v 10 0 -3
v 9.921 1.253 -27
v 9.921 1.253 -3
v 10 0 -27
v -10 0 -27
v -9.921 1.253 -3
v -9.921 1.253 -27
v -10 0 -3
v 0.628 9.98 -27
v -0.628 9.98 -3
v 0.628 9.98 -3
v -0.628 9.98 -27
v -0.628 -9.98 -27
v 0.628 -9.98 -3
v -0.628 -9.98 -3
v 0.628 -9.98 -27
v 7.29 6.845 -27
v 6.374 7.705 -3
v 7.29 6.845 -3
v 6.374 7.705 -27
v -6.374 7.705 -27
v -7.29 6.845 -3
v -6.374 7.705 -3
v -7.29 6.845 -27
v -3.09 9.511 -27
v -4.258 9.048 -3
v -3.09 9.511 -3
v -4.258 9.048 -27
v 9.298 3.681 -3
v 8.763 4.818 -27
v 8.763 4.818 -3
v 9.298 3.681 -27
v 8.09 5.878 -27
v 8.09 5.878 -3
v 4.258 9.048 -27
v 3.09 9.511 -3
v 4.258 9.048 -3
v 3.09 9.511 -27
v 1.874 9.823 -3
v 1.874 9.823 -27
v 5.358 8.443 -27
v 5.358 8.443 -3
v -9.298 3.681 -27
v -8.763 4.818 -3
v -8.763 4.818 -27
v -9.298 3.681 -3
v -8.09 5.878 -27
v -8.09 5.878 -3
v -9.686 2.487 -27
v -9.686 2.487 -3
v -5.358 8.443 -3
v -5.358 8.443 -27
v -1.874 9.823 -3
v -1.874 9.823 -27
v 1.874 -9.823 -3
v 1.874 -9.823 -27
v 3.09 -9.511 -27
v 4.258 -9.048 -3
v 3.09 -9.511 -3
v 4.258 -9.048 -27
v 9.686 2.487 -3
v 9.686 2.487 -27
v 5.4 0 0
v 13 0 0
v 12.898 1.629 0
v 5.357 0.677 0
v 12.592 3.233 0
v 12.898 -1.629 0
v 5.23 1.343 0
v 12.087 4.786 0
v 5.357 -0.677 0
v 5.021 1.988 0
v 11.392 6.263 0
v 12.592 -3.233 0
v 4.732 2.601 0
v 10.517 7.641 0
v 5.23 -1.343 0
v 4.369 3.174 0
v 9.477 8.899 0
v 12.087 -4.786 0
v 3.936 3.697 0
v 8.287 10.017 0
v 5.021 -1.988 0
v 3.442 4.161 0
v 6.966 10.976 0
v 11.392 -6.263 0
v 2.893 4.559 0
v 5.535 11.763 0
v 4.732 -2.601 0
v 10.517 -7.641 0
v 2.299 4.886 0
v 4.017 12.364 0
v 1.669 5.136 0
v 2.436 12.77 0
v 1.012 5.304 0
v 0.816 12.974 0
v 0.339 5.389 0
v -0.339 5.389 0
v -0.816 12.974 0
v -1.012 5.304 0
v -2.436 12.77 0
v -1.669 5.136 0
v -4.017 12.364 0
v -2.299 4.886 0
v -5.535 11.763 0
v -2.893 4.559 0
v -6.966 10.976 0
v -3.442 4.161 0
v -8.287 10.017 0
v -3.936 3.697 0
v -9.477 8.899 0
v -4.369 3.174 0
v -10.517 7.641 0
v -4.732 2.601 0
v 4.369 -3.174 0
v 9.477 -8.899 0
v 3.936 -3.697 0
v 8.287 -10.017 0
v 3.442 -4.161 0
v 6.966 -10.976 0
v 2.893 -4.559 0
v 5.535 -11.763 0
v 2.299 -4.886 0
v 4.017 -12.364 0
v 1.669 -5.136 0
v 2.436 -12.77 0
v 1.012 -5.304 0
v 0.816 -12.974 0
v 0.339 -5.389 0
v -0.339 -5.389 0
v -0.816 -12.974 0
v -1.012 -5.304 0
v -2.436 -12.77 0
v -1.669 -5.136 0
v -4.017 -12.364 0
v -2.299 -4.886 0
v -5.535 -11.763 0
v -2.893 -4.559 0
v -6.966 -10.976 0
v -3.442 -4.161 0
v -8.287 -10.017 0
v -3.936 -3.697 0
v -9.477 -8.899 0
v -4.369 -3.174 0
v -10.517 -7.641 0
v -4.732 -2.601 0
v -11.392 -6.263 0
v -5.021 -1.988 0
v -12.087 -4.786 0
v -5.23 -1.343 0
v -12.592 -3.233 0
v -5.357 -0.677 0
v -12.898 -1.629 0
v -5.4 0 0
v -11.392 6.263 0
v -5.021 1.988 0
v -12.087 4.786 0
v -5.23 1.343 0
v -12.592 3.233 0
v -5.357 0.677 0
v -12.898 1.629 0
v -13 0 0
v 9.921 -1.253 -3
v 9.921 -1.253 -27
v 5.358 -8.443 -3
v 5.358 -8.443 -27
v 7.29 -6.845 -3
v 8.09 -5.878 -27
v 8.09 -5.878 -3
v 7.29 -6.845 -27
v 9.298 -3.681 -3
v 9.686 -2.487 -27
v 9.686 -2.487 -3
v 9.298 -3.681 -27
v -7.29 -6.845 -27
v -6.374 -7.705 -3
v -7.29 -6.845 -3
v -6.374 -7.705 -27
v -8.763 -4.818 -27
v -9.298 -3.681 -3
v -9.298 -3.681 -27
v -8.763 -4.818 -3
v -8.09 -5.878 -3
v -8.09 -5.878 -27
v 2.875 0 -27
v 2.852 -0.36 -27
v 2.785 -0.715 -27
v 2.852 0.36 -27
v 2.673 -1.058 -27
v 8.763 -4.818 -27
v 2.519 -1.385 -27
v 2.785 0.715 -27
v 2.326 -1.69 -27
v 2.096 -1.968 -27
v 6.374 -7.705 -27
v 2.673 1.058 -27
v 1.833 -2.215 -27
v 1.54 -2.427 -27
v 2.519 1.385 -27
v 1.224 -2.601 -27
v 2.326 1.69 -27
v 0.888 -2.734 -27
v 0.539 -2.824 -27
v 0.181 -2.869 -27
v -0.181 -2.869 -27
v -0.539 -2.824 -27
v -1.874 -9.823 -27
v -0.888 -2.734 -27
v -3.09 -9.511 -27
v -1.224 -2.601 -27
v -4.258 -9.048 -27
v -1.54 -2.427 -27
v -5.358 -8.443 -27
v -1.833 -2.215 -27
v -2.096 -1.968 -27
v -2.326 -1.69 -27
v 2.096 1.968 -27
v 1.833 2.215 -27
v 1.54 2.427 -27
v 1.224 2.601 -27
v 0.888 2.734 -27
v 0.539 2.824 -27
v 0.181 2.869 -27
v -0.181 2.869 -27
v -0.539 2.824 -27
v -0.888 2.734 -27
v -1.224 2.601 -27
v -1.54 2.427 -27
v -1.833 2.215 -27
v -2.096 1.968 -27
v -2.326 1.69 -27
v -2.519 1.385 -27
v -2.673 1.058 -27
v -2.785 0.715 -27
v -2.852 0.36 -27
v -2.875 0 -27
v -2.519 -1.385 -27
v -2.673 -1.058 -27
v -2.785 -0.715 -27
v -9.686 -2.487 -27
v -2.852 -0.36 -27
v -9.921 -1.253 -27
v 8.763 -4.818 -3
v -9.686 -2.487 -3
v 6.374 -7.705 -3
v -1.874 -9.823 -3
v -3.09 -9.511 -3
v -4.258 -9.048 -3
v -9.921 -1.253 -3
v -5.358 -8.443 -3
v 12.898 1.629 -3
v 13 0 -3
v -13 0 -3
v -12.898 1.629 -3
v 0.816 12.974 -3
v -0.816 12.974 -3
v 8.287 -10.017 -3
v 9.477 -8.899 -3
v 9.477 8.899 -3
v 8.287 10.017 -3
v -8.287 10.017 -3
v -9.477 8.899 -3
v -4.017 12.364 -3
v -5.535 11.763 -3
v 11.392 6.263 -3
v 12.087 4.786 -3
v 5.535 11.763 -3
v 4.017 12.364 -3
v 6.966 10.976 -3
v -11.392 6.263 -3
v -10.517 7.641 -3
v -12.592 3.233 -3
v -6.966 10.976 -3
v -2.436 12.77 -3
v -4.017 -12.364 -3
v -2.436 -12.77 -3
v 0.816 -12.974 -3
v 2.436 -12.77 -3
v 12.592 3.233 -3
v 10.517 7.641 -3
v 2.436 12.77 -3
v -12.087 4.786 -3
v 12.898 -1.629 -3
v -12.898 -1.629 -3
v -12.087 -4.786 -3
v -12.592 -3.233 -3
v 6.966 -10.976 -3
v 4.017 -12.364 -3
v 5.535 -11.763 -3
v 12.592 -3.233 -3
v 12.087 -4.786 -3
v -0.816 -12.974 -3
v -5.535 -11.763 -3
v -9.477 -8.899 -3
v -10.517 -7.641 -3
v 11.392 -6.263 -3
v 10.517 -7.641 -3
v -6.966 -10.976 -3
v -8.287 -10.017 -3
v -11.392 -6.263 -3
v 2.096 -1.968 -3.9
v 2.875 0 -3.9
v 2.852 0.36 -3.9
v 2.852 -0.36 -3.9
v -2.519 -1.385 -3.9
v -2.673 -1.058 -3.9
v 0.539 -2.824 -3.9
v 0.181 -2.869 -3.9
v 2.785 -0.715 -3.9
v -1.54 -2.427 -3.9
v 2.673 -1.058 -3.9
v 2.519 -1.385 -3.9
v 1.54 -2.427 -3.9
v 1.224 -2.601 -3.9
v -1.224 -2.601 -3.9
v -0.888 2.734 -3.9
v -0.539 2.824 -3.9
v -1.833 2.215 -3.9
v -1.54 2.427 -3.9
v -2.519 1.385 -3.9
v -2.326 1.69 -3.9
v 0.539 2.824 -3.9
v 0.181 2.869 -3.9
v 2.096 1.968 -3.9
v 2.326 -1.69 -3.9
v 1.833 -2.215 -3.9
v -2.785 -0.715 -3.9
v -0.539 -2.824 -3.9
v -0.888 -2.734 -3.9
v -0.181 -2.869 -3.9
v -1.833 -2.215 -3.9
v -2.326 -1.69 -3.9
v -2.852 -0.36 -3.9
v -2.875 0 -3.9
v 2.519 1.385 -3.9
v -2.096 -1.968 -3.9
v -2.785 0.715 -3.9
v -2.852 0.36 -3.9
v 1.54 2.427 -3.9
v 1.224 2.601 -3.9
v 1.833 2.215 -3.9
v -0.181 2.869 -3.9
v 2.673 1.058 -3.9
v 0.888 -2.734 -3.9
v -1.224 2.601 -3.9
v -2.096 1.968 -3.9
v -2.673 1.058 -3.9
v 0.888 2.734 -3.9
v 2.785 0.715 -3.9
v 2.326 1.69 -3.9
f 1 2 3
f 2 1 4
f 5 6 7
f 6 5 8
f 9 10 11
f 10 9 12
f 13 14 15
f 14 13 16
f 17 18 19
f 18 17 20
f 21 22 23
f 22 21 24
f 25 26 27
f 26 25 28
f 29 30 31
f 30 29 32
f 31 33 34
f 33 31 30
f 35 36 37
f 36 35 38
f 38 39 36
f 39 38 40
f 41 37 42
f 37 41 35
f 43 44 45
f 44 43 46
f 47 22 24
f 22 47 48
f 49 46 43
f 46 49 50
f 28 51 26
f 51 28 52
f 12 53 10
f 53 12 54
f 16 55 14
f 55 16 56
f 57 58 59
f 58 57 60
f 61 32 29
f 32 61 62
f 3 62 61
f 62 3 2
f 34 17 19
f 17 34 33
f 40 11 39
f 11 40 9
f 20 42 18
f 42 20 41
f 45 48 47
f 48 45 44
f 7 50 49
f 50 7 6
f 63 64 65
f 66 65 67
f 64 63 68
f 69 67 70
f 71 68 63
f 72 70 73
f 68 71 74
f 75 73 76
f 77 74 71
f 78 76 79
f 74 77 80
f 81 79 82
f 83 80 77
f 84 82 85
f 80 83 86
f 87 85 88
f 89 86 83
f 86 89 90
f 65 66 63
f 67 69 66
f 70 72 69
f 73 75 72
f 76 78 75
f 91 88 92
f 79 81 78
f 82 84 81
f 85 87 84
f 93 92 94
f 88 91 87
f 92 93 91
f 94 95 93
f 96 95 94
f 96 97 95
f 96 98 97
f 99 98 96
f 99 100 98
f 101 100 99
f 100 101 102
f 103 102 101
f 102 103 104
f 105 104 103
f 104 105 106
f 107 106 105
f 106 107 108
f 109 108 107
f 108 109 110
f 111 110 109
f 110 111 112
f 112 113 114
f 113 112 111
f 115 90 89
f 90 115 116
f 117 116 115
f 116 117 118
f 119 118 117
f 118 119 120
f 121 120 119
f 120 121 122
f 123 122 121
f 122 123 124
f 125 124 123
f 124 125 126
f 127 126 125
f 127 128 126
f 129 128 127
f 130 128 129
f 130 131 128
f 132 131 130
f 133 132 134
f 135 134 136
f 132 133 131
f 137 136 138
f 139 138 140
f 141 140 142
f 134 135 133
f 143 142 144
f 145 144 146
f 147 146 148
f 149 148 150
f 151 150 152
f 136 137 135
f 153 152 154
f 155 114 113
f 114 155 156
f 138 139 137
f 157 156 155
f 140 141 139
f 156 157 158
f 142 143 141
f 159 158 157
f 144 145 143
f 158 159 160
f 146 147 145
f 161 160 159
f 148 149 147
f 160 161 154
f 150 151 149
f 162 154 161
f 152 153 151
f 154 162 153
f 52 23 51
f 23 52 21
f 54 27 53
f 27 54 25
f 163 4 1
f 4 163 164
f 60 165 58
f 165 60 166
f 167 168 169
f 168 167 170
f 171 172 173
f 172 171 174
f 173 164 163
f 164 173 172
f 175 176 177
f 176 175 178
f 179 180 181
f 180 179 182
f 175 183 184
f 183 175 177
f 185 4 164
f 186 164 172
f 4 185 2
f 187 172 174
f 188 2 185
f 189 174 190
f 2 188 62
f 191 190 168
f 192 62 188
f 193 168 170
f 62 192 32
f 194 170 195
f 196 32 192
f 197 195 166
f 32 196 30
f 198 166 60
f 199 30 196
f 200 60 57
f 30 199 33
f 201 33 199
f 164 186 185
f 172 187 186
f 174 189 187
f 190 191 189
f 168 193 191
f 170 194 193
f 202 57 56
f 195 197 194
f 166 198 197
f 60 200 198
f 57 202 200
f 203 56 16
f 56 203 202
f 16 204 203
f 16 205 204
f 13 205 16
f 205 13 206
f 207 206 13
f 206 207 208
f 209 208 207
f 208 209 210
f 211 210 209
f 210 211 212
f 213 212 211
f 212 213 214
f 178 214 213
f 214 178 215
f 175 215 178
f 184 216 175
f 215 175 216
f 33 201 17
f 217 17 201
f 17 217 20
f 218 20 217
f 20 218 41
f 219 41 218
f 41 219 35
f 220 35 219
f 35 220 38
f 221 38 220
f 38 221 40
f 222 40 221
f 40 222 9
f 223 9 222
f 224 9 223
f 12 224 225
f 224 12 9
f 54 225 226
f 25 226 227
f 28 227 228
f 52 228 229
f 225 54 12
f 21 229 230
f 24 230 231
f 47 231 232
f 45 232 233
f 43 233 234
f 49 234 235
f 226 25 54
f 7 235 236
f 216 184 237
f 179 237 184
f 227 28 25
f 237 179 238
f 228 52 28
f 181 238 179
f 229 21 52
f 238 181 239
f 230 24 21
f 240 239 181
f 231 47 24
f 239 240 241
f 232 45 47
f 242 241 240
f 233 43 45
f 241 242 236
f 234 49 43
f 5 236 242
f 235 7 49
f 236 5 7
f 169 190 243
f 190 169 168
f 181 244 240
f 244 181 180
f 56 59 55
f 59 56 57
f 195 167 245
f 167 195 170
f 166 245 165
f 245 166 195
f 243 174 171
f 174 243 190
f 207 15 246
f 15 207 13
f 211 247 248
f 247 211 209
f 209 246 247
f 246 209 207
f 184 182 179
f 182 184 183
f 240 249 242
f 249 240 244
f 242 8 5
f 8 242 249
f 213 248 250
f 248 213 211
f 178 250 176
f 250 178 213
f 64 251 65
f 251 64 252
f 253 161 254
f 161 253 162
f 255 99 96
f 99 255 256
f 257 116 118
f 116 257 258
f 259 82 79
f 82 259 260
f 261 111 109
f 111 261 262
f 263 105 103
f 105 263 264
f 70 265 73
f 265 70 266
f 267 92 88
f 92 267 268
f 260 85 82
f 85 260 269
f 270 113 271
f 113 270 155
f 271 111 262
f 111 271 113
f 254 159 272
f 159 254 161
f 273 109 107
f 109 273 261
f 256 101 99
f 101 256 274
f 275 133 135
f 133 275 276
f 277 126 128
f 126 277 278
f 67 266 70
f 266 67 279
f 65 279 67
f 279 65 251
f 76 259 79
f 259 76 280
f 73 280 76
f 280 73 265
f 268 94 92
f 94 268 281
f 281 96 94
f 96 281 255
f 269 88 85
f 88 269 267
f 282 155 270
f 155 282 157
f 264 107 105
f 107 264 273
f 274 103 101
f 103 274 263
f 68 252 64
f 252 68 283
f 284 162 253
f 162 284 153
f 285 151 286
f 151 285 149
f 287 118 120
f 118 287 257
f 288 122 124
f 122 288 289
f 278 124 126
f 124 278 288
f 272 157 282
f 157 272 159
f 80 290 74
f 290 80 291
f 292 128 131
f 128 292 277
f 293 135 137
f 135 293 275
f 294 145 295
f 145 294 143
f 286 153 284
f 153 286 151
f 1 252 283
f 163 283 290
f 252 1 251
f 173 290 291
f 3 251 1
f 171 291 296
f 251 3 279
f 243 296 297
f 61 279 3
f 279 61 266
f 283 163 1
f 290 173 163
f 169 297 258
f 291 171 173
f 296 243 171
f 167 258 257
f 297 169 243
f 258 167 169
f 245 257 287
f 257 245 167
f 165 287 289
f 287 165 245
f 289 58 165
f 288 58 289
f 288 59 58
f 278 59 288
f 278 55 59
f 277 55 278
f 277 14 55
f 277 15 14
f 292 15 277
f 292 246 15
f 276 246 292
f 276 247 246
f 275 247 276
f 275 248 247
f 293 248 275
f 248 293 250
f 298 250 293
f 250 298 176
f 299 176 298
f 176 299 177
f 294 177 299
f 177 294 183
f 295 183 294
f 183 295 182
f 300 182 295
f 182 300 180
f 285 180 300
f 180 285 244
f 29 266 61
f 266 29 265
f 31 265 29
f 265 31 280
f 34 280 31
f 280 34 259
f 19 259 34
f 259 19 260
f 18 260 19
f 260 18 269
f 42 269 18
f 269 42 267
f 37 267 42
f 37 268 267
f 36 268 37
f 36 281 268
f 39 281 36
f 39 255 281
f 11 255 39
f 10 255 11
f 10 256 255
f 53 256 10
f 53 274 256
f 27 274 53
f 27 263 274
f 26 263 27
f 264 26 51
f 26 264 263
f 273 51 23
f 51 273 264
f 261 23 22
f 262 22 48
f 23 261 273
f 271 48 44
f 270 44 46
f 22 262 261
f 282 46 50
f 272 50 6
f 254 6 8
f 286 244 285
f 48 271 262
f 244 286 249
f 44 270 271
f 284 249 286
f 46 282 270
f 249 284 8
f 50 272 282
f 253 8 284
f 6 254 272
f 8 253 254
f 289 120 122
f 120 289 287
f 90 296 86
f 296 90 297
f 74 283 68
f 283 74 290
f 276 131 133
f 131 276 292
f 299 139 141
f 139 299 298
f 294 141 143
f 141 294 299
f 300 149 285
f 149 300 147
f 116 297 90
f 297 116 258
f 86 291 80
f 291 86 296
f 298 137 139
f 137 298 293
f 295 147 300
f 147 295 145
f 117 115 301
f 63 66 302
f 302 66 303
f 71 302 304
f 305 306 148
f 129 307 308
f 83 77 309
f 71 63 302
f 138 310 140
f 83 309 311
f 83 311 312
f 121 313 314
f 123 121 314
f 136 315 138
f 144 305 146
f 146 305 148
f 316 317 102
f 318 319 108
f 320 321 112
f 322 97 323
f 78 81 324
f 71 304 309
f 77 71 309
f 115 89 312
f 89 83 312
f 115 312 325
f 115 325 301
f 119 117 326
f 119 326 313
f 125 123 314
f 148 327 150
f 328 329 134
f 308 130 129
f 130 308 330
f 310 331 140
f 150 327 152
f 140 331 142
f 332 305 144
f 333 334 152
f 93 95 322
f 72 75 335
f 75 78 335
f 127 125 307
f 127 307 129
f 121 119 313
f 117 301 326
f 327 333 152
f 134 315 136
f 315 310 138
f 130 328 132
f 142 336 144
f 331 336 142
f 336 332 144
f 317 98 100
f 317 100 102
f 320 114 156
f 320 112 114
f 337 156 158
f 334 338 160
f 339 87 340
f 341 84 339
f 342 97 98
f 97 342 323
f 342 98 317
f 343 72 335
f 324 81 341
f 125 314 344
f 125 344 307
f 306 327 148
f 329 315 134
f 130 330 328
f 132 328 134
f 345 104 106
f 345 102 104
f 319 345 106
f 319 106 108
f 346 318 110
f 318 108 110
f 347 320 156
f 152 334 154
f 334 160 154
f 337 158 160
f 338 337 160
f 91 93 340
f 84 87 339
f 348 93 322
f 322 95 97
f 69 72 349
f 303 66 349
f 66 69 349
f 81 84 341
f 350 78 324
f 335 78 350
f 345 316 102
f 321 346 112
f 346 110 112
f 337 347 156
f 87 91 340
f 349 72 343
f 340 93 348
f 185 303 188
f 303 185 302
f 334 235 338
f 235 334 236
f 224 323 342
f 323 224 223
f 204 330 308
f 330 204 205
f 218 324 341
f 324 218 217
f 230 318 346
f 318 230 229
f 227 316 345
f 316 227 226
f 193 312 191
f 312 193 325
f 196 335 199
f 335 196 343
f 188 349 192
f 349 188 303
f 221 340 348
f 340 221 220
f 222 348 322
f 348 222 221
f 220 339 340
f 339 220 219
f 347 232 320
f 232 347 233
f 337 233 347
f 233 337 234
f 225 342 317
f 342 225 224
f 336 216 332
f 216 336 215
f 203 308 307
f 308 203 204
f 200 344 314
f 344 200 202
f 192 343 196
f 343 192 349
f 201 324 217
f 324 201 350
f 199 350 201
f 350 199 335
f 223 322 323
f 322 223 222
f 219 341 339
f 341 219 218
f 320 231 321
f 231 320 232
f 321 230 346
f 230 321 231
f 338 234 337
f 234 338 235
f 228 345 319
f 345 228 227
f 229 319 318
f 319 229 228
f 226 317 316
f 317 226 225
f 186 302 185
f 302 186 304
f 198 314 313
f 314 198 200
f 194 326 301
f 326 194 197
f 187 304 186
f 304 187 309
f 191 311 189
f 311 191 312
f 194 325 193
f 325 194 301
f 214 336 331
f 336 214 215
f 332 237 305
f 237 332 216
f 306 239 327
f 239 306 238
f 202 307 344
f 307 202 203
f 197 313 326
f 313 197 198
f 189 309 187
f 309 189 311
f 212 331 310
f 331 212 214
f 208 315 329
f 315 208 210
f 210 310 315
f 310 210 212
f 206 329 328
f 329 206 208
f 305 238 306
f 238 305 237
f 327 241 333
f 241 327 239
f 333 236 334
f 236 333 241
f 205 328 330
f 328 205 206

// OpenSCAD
$fn = 50;


difference() {
	union() {
		translate(v = [0, 0, -27.0000000000]) {
			cylinder(h = 27, r = 10.0000000000);
		}
		translate(v = [0, 0, -3.0000000000]) {
			cylinder(h = 3, r = 13.0000000000);
		}
	}
	union() {
		translate(v = [0, 0, 0]) {
			rotate(a = [0, 0, 0]) {
				difference() {
					union() {
						#translate(v = [0, 0, -27.0000000000]) {
							cylinder(h = 27, r = 2.6000000000);
						}
						#translate(v = [0, 0, -3.9000000000]) {
							cylinder(h = 3.9000000000, r = 10.0000000000, r1 = 2.8750000000, r2 = 5.4000000000);
						}
						#translate(v = [0, 0, -27.0000000000]) {
							cylinder(h = 27, r = 2.8750000000);
						}
						#translate(v = [0, 0, -27.0000000000]) {
							cylinder(h = 27, r = 2.6000000000);
						}
					}
					union();
				}
			}
		}
	}
}
